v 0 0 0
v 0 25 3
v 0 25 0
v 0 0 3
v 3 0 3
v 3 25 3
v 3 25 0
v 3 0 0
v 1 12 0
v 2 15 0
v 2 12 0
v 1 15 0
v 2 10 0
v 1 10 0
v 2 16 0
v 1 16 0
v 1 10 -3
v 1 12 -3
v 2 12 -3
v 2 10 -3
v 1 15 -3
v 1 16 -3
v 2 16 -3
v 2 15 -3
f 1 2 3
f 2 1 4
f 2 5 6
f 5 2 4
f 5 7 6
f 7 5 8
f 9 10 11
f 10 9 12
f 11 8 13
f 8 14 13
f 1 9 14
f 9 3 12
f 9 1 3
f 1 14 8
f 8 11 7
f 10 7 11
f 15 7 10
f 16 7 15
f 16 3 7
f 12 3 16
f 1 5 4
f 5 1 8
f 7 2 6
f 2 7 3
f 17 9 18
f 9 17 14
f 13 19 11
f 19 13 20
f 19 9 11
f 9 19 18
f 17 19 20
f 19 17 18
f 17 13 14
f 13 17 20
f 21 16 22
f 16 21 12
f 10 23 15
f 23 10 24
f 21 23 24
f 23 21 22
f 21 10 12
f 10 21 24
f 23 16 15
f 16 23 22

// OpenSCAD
cube([3,25,3]);

translate([1,10,-3])
cube([1,2,4]);

translate([1,15,-3])
cube([1,1,4]);
